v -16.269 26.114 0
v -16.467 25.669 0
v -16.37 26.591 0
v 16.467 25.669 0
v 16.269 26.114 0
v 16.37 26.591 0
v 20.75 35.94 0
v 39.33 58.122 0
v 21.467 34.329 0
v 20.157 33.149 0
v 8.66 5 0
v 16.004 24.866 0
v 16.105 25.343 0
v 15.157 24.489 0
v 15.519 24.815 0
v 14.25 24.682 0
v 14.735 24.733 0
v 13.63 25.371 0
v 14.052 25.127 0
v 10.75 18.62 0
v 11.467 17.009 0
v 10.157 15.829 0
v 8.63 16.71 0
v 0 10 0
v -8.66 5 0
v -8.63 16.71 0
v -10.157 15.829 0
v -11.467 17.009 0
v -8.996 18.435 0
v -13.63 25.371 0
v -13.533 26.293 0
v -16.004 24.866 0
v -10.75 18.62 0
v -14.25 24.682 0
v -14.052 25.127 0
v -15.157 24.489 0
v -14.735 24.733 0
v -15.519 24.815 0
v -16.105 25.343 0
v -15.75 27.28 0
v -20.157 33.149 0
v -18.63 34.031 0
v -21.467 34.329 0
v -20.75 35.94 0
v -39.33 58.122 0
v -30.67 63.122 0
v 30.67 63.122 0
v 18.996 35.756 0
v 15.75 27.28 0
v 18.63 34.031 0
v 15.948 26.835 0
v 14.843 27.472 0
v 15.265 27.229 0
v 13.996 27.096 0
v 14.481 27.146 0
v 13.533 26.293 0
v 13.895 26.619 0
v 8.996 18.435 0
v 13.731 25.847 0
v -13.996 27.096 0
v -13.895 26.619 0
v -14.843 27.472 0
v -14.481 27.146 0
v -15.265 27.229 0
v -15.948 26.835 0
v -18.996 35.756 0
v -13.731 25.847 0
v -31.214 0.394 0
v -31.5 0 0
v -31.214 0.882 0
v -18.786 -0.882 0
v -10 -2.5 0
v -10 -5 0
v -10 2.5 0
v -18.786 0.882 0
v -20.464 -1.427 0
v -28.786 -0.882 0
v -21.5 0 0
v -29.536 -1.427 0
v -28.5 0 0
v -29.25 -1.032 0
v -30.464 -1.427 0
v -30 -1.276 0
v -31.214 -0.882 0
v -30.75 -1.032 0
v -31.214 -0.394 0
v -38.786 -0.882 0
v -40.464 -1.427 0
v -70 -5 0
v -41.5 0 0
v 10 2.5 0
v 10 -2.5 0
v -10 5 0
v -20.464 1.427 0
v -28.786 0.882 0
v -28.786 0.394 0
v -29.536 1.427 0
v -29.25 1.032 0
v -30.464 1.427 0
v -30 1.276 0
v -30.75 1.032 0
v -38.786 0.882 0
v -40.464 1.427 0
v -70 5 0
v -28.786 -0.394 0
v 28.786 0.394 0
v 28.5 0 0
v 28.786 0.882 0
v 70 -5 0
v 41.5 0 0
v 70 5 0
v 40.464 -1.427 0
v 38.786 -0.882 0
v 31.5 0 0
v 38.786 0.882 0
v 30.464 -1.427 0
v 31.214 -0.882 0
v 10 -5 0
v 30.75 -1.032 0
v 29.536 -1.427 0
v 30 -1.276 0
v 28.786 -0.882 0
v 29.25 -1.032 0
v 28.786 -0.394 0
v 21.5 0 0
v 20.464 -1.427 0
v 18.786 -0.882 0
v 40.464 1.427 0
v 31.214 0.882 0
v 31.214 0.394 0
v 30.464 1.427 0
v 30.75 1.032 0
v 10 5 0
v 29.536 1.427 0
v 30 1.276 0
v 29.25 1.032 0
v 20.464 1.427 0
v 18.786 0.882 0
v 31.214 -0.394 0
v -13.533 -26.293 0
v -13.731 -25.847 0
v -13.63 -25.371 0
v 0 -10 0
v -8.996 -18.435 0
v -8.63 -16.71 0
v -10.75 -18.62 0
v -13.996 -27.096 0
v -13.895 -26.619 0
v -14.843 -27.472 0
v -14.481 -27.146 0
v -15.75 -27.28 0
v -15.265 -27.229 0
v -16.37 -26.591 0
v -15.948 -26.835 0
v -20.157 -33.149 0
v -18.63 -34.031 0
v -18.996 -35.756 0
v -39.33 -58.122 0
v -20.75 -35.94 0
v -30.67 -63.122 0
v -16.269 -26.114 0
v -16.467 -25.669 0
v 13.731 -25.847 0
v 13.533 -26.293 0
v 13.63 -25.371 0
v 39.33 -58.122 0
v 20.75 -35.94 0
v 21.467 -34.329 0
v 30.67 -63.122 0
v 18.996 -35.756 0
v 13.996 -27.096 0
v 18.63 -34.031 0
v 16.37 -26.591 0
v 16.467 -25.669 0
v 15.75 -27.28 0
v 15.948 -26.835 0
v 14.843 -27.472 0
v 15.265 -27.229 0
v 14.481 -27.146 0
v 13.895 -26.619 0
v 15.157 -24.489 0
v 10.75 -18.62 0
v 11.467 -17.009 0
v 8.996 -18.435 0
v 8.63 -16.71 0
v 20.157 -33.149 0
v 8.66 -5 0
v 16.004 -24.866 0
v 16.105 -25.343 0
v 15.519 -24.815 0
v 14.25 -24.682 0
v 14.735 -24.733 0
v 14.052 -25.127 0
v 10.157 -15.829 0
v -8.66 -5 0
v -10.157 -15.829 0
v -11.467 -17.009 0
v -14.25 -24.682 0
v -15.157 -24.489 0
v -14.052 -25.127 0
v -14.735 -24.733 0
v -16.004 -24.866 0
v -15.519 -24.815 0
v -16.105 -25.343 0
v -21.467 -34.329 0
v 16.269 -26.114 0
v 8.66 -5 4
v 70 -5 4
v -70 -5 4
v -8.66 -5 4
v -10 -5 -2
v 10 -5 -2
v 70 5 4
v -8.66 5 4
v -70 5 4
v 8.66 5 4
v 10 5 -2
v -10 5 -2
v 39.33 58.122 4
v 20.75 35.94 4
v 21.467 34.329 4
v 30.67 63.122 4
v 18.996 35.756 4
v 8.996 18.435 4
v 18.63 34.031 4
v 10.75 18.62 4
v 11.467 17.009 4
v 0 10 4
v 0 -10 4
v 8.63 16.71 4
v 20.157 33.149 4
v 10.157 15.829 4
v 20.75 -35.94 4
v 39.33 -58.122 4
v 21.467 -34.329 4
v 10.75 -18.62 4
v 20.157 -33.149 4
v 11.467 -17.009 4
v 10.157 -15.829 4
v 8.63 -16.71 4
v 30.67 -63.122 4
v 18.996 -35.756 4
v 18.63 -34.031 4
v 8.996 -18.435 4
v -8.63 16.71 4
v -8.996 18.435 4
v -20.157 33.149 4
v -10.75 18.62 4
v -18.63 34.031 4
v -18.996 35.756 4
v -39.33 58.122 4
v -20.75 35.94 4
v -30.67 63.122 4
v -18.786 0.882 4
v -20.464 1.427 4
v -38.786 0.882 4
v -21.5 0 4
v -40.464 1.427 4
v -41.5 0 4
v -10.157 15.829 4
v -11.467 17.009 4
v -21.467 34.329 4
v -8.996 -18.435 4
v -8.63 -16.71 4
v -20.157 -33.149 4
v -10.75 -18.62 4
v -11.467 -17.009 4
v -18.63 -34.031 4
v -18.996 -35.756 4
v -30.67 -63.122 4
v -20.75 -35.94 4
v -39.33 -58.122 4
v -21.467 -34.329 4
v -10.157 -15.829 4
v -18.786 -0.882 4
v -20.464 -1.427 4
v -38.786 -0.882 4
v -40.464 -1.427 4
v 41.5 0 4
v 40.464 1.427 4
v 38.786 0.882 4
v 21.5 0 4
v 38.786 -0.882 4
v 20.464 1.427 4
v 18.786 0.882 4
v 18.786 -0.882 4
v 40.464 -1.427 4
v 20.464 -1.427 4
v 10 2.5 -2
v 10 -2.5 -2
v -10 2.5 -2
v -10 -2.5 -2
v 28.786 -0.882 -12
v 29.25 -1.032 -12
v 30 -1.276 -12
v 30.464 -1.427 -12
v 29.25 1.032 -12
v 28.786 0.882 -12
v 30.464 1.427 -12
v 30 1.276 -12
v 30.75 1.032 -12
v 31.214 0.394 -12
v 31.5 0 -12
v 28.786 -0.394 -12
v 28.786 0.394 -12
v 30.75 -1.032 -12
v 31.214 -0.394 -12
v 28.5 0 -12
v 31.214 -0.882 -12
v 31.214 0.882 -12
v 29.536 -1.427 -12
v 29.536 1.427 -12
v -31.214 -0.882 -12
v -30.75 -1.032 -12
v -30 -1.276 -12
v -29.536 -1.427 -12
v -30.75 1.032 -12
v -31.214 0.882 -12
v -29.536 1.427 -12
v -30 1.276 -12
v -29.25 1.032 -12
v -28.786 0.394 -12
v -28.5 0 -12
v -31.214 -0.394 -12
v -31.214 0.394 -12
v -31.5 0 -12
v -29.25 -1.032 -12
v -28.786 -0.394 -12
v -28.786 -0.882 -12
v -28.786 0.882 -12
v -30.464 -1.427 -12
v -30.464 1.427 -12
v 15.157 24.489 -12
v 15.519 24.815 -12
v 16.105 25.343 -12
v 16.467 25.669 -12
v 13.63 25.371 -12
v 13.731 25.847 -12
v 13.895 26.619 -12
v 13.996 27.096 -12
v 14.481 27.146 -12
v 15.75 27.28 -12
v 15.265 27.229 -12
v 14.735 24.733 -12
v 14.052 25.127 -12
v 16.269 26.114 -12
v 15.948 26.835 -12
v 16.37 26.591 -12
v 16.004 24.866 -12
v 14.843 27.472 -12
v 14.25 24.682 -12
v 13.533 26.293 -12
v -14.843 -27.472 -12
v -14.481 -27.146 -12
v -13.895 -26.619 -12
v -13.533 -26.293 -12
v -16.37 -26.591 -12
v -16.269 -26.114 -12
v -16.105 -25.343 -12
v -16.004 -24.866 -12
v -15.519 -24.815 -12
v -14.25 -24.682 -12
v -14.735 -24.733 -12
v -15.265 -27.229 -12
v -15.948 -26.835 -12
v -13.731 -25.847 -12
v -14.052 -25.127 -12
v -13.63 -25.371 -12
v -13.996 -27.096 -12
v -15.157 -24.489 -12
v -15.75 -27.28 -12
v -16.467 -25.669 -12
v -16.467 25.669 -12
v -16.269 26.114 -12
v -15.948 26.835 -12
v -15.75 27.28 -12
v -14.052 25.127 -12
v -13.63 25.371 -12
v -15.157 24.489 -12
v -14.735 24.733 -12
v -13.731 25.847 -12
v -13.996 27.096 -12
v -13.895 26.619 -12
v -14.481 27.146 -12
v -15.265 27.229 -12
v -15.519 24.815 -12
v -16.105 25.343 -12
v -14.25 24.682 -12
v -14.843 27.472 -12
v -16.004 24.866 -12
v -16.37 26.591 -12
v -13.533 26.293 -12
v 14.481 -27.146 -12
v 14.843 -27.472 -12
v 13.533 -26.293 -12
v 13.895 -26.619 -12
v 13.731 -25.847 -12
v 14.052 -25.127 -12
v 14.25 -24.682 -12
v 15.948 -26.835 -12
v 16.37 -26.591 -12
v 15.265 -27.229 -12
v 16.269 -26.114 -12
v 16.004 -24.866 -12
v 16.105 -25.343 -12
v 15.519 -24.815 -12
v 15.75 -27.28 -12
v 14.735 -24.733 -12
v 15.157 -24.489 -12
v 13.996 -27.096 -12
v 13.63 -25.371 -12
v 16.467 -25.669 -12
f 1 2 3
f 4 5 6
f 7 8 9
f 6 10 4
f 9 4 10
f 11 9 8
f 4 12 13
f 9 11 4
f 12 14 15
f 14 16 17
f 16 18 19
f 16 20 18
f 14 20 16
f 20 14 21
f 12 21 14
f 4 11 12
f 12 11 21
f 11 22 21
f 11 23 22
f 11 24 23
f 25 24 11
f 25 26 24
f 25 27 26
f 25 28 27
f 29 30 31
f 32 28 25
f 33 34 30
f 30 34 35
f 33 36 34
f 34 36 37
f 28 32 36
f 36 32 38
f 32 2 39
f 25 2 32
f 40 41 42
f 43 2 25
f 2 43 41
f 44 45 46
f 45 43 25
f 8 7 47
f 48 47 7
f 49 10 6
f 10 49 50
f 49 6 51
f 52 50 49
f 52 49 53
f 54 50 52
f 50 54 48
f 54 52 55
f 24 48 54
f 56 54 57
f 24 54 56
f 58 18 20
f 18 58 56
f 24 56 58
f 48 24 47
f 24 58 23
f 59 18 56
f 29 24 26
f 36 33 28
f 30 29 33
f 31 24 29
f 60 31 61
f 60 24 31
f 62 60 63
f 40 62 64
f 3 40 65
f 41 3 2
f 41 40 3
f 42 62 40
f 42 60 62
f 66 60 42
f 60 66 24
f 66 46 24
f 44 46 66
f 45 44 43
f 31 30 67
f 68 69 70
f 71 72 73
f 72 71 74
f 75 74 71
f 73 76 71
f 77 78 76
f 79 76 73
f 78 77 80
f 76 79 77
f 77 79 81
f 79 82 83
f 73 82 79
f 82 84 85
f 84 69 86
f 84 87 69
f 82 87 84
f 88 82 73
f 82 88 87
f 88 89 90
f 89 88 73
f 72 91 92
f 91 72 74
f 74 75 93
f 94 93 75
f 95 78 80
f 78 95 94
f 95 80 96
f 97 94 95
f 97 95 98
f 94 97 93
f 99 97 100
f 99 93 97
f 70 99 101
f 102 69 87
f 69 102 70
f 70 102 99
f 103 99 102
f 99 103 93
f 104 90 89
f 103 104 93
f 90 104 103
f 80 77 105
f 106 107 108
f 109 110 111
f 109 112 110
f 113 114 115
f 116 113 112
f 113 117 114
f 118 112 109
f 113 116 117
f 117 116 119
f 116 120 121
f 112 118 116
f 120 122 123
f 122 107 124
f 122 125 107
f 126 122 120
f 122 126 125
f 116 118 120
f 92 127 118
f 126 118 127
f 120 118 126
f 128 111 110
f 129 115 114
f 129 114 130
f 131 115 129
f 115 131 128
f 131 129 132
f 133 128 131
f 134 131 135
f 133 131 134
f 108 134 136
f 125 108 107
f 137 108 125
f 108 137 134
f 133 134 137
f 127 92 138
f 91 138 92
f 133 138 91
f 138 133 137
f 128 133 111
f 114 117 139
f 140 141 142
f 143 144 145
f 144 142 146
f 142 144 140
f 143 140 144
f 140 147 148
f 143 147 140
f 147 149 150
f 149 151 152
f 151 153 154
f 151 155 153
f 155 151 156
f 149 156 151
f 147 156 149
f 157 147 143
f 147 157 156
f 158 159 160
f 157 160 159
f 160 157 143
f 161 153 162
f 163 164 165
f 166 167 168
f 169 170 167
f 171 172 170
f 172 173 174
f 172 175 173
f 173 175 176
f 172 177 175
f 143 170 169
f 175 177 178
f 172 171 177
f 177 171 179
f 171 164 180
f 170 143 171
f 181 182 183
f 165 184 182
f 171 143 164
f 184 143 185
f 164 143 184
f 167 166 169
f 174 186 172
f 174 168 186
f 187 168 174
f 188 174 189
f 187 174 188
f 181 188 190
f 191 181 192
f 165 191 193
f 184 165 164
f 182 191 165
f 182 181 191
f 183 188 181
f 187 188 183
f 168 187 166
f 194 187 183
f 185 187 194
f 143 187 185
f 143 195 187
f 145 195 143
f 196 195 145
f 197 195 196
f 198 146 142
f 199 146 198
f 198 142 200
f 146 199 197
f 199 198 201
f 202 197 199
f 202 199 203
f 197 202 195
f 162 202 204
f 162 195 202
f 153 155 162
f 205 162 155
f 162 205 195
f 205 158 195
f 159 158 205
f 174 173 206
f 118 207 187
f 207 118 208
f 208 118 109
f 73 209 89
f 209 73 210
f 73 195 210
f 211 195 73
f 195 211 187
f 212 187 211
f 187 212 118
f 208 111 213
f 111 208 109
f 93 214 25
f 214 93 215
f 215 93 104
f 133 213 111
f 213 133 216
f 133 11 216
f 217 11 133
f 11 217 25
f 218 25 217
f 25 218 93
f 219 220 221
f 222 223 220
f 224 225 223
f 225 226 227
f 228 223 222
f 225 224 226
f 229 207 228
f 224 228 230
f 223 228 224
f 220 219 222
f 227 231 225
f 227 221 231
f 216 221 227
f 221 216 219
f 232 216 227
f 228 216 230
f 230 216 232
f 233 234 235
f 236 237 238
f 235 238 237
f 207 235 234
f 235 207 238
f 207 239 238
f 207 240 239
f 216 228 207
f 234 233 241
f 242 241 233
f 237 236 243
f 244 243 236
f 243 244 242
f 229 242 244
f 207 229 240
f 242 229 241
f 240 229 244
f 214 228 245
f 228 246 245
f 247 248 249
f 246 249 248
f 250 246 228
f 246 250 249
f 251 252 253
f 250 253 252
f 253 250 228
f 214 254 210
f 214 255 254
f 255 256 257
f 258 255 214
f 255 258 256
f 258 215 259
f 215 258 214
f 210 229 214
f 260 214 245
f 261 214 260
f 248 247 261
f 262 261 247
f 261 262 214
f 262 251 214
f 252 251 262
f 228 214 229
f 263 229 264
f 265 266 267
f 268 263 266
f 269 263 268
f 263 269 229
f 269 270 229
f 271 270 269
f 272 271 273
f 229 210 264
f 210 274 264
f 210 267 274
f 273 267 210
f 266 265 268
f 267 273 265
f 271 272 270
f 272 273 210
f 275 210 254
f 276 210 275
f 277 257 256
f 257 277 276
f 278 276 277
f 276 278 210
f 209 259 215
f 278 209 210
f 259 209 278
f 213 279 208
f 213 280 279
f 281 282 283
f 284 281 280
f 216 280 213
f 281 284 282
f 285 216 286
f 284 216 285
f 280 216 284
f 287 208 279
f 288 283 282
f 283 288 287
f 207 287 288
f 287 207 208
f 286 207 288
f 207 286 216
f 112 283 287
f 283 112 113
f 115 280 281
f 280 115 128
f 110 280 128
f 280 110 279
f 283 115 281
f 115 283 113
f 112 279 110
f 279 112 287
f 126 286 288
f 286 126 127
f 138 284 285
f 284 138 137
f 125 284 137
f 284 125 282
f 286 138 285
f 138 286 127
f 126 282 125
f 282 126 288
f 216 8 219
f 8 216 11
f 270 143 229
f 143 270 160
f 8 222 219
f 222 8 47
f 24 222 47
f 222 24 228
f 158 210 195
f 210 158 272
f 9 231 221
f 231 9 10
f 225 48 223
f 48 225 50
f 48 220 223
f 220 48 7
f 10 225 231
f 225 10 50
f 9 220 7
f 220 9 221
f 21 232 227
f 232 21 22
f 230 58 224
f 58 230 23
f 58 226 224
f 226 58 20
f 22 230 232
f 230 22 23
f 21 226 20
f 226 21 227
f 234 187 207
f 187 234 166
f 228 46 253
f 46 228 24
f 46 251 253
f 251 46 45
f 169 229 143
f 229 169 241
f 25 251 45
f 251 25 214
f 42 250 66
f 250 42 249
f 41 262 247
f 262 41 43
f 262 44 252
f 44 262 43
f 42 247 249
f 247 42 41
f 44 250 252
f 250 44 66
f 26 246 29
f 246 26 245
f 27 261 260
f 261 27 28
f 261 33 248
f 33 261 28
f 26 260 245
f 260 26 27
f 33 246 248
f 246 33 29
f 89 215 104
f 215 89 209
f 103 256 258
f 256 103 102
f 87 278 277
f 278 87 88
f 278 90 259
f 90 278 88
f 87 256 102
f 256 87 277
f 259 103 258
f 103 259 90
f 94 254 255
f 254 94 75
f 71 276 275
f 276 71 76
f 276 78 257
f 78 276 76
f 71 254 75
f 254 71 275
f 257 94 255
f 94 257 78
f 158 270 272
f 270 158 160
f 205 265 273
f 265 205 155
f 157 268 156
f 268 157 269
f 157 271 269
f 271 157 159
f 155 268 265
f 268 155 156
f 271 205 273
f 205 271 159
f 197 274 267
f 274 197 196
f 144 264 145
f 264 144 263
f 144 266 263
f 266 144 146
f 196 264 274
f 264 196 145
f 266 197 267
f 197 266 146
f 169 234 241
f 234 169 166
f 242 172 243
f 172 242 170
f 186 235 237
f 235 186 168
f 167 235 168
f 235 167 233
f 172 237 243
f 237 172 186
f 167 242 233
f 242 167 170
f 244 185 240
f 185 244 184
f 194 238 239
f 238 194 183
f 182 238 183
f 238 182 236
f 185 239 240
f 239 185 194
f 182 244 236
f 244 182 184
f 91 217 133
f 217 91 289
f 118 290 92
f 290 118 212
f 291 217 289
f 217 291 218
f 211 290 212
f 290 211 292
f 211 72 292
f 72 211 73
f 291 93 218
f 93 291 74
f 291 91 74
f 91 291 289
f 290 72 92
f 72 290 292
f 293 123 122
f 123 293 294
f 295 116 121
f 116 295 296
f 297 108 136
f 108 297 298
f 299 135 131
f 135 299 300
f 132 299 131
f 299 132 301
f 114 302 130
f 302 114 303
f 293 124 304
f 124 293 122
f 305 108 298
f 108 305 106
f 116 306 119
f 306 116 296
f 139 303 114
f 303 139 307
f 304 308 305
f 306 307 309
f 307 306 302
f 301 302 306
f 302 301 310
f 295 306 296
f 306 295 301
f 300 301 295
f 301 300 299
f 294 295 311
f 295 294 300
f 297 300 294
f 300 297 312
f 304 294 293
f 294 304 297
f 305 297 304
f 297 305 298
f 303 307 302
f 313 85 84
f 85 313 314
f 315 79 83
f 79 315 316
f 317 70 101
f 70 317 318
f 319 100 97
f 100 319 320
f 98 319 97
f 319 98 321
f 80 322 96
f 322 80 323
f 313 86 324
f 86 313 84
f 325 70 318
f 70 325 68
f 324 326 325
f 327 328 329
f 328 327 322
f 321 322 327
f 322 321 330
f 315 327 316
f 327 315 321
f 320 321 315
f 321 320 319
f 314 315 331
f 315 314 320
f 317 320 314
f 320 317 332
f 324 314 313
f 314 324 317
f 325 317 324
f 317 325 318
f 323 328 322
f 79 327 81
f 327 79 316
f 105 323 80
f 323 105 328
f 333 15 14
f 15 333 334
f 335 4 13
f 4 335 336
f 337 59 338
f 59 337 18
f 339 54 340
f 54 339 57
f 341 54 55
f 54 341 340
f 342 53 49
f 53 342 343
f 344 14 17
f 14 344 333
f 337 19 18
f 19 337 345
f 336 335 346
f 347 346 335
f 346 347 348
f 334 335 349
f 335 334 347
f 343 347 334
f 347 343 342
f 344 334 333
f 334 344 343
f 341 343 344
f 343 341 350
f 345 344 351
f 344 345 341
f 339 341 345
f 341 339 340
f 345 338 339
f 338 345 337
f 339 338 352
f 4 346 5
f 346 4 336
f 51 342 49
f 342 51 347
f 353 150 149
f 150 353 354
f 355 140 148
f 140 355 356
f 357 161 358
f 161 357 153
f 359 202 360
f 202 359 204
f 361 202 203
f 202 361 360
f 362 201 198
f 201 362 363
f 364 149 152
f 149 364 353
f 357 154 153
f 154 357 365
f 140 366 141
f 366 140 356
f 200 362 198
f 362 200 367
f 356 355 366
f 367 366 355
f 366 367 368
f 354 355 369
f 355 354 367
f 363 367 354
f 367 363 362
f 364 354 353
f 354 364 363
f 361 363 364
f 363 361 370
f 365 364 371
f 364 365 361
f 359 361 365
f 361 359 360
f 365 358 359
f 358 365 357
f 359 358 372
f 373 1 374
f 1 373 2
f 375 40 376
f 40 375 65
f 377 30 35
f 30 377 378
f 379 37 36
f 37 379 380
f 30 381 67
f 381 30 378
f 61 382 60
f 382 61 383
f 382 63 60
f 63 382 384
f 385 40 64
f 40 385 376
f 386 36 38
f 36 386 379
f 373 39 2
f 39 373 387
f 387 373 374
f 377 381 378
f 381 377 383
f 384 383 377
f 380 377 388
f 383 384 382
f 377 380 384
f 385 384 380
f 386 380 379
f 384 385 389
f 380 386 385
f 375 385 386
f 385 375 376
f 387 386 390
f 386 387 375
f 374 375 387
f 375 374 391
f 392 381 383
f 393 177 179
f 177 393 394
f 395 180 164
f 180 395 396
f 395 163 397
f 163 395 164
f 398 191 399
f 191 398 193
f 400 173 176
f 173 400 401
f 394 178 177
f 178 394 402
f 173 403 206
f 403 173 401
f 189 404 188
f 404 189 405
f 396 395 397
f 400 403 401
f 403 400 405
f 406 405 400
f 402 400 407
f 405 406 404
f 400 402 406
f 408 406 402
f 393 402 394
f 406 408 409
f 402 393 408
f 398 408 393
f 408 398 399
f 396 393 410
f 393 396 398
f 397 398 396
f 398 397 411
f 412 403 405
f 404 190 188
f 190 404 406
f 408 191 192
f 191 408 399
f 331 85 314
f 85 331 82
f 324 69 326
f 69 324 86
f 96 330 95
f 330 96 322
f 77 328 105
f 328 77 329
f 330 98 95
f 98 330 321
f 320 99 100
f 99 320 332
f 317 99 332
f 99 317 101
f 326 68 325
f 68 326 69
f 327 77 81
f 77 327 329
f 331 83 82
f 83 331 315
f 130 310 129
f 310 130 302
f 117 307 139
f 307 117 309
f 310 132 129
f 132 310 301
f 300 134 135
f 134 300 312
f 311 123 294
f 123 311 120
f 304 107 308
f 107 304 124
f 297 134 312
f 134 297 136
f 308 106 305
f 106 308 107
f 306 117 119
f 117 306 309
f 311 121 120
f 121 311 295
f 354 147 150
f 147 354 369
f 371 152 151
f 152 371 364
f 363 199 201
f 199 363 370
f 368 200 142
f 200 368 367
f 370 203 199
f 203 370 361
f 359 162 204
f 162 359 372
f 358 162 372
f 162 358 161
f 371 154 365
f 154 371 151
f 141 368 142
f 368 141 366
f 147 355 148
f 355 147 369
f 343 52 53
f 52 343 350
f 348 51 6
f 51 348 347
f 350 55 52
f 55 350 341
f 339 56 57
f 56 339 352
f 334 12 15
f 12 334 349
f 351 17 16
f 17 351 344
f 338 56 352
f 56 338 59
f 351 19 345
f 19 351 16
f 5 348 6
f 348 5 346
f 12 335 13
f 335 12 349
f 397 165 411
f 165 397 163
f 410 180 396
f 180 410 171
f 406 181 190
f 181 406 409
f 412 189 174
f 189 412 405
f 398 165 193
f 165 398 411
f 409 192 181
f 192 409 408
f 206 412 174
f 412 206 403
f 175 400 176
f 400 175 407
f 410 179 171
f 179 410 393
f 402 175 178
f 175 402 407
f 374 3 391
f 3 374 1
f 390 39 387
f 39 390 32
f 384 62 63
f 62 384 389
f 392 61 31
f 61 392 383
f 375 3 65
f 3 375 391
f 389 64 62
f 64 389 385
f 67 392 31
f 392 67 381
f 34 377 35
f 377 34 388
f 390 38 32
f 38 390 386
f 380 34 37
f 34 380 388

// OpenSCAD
// Parameters
bracket_thickness = 4; // Reduced thickness for smoother edges
bracket_hole_diameter = 3;
bracket_long_arm_length = 40;
bracket_short_arm_length = 20;
bracket_width = 10;

spacer_length = 20;
spacer_width = 10;
spacer_thickness = 4; // Reduced thickness to match original design
spacer_slot_width = 5; // Increased slot width to match original design

fastener_diameter = 3;
fastener_length = 12; // Shortened fastener length to match original design

// Bracket module
module bracket() {
    difference() {
        union() {
            // Long arm with rounded edges
            hull() {
                translate([bracket_long_arm_length / 2, 0, 0])
                    cube([bracket_long_arm_length, bracket_width, bracket_thickness], center = true);
                translate([-bracket_long_arm_length / 2, 0, 0])
                    cube([bracket_long_arm_length, bracket_width, bracket_thickness], center = true);
            }
            // Short arm with rounded edges
            translate([-(bracket_long_arm_length / 2 - bracket_short_arm_length / 2), 0, 0])
                hull() {
                    cube([bracket_short_arm_length, bracket_width, bracket_thickness], center = true);
                    translate([bracket_short_arm_length, 0, 0])
                        cube([bracket_short_arm_length, bracket_width, bracket_thickness], center = true);
                }
        }
        // Holes
        translate([bracket_long_arm_length / 4, 0, 0])
            cylinder(h = bracket_thickness + 1, d = bracket_hole_diameter, center = true);
        translate([-bracket_long_arm_length / 4, 0, 0])
            cylinder(h = bracket_thickness + 1, d = bracket_hole_diameter, center = true);
        translate([-(bracket_long_arm_length / 2 - bracket_short_arm_length / 2), 0, 0])
            cylinder(h = bracket_thickness + 1, d = bracket_hole_diameter, center = true);
    }
}

// Spacer module
module spacer() {
    difference() {
        cube([spacer_length, spacer_width, spacer_thickness], center = true);
        translate([0, 0, 0])
            cube([spacer_length, spacer_slot_width, spacer_thickness + 1], center = true);
    }
}

// Fastener module
module fastener() {
    cylinder(h = fastener_length, d = fastener_diameter, center = true);
}

// Assembly
module assembly() {
    // Layer 1: Brackets
    for (i = [0:5]) {
        rotate([0, 0, i * 60])
            translate([30, 0, bracket_thickness / 2])
                bracket();
    }

    // Layer 2: Spacer
    spacer();

    // Layer 3: Fasteners
    for (i = [0:5]) {
        rotate([0, 0, i * 60])
            translate([30, 0, -fastener_length / 2])
                fastener();
        rotate([0, 0, i * 60])
            translate([-30, 0, -fastener_length / 2])
                fastener();
    }
}

// Render the assembly
assembly();
